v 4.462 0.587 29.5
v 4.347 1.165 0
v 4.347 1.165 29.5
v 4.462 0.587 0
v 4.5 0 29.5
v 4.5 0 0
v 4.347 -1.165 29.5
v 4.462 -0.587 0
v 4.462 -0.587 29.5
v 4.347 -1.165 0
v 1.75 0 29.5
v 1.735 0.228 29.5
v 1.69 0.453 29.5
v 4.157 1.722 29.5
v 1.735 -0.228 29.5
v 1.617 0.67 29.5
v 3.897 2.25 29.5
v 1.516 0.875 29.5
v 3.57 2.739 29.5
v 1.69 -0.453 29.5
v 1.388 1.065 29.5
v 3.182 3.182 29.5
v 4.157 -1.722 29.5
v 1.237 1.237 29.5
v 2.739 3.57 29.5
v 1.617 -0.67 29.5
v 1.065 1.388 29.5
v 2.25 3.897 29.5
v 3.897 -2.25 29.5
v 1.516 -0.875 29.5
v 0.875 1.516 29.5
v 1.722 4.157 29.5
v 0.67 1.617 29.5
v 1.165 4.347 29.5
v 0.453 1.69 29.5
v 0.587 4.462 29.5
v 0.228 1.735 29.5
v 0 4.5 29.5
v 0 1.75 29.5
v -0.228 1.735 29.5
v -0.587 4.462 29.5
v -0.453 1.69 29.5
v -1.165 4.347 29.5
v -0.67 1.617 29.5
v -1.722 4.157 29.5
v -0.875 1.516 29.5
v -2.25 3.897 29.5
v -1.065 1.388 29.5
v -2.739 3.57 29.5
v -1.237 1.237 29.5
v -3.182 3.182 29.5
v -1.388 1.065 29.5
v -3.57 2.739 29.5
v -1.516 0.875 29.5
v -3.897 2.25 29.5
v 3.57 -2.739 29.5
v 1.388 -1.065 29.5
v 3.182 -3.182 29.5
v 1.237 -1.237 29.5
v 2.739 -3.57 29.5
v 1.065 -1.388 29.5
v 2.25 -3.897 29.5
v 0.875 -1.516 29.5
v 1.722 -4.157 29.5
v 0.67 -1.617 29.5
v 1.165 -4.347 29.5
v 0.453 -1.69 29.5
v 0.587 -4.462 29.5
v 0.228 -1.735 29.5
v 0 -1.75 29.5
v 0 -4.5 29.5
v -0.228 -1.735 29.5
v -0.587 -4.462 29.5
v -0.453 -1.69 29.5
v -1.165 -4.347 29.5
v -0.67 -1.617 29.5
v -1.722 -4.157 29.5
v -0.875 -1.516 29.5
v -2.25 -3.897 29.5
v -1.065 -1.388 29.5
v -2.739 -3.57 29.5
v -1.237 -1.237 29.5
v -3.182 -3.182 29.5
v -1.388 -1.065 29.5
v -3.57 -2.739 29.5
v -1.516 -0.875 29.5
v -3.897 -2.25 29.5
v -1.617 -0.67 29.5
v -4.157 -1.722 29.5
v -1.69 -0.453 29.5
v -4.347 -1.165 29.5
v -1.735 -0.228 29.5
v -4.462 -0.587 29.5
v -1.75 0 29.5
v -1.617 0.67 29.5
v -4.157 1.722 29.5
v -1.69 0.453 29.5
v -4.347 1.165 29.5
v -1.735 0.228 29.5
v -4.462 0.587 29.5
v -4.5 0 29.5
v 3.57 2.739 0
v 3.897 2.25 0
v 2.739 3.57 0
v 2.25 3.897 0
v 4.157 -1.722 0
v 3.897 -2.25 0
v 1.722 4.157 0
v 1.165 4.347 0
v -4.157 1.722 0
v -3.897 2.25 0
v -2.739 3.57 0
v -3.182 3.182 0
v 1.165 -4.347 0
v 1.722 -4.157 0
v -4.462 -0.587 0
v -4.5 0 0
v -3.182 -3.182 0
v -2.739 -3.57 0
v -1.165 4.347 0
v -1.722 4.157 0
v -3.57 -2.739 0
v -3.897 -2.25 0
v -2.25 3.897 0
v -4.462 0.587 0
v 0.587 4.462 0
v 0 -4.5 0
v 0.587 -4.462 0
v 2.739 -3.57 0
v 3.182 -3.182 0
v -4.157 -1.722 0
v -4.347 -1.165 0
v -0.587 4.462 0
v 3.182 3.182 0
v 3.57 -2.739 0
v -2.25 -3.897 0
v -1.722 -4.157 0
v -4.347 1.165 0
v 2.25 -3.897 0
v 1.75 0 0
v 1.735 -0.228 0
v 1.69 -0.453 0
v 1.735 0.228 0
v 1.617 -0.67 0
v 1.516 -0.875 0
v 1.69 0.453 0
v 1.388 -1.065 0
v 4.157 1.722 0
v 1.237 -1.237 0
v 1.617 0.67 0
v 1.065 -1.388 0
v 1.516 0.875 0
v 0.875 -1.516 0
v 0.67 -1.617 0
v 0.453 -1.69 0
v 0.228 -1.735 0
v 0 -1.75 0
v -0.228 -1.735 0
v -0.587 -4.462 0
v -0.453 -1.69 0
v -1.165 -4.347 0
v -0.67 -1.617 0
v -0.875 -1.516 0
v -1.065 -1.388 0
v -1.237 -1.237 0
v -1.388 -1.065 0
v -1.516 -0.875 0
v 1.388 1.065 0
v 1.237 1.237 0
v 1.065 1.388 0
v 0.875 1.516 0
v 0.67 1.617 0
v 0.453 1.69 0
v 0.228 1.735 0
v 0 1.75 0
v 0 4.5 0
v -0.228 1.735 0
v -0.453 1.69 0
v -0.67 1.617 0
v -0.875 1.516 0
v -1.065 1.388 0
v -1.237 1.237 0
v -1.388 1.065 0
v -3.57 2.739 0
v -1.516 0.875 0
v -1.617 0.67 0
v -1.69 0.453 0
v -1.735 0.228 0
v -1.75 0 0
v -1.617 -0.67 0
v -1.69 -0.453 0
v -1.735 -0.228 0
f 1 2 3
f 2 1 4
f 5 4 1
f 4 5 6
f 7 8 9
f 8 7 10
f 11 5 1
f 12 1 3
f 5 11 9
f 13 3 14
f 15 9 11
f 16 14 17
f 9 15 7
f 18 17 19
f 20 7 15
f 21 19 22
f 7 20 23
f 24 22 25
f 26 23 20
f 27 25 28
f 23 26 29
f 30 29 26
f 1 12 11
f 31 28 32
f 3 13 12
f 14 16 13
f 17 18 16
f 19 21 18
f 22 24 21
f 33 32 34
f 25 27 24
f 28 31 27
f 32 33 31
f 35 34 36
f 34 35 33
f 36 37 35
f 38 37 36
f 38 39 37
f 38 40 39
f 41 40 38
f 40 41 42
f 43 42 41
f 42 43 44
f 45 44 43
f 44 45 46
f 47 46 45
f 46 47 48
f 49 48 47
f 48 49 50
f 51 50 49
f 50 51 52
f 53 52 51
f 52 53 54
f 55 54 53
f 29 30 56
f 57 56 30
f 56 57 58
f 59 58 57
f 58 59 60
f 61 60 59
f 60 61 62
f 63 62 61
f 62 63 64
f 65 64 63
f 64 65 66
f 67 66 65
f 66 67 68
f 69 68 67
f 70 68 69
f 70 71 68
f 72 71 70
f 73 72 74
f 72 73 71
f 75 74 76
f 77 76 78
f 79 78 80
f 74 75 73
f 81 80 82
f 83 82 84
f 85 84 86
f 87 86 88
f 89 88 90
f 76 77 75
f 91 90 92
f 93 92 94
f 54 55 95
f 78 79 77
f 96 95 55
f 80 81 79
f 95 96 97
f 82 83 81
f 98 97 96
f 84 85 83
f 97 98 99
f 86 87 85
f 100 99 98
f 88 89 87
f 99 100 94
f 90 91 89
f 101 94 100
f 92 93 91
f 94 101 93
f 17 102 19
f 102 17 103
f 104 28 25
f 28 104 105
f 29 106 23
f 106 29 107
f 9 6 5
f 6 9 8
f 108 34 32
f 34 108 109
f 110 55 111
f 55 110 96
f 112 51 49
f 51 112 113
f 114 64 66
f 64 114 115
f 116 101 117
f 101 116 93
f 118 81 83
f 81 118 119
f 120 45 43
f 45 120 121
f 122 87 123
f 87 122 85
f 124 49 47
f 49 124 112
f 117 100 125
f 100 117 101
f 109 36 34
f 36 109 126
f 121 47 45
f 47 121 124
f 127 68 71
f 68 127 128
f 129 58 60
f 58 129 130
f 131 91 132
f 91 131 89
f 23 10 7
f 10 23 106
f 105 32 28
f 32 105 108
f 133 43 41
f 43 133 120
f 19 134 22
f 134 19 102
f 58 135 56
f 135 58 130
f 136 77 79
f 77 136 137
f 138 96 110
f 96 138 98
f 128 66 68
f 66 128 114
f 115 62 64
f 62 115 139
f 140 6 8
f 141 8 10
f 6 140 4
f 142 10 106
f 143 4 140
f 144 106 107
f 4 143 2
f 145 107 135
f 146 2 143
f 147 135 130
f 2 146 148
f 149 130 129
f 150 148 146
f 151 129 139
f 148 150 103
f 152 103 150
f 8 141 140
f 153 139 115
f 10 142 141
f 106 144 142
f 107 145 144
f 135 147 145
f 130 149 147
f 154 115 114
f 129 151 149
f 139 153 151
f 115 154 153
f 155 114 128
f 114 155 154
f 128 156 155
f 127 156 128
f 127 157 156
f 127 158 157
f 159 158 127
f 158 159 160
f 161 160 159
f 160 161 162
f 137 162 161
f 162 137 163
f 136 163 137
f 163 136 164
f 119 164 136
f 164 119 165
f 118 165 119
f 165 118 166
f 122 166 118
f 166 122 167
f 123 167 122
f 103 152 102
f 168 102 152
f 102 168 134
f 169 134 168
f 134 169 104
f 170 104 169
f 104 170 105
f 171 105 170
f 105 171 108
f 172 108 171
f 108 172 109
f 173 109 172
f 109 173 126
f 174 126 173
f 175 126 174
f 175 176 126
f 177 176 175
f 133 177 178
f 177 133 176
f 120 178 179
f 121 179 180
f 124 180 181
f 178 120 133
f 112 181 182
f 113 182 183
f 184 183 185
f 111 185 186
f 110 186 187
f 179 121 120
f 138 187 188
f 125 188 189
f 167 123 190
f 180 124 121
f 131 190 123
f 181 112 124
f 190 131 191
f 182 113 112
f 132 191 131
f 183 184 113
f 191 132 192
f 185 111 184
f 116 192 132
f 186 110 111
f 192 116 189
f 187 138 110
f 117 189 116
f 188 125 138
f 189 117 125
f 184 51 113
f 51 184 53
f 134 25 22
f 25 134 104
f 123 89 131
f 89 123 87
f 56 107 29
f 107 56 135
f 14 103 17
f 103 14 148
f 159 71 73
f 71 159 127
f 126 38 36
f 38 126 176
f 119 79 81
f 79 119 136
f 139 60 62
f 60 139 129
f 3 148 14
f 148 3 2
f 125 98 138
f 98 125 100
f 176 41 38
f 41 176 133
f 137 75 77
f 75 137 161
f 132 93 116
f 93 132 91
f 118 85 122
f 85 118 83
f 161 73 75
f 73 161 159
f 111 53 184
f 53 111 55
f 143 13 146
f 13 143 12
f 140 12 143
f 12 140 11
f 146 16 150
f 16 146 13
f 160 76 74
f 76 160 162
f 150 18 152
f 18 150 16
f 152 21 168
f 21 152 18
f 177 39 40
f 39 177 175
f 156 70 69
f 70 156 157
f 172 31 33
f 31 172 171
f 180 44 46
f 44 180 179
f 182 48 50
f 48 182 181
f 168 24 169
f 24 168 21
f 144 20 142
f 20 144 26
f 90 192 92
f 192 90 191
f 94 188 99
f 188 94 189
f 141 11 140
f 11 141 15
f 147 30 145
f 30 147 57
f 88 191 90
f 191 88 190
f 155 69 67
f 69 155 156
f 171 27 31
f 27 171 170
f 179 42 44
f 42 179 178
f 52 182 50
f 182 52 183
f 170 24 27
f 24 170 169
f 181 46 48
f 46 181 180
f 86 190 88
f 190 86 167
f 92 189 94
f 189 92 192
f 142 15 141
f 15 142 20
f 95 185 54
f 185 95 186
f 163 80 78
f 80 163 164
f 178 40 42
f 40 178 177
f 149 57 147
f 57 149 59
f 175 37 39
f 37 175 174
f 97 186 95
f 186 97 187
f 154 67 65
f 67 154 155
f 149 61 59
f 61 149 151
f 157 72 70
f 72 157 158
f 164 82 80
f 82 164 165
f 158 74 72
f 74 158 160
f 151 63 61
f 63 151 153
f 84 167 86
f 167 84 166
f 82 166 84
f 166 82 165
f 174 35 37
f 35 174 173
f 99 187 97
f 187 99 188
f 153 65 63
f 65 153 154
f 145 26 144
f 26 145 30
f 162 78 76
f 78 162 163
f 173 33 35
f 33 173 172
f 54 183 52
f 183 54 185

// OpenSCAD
// Gen-DB — frame standoff tube between stator and an endbell, on each M3 frame rod (outside rotor OD).
// Print x4. Height = frame_standoff_h (rotor + steel + hub + collar + running clearance).
include <parameters.scad>;
$fn = 48;
difference() {
    cylinder(d=standoff_od, h=frame_standoff_h);
    translate([0, 0, -0.1]) cylinder(d=m3_clear, h=frame_standoff_h + 0.2);
}
